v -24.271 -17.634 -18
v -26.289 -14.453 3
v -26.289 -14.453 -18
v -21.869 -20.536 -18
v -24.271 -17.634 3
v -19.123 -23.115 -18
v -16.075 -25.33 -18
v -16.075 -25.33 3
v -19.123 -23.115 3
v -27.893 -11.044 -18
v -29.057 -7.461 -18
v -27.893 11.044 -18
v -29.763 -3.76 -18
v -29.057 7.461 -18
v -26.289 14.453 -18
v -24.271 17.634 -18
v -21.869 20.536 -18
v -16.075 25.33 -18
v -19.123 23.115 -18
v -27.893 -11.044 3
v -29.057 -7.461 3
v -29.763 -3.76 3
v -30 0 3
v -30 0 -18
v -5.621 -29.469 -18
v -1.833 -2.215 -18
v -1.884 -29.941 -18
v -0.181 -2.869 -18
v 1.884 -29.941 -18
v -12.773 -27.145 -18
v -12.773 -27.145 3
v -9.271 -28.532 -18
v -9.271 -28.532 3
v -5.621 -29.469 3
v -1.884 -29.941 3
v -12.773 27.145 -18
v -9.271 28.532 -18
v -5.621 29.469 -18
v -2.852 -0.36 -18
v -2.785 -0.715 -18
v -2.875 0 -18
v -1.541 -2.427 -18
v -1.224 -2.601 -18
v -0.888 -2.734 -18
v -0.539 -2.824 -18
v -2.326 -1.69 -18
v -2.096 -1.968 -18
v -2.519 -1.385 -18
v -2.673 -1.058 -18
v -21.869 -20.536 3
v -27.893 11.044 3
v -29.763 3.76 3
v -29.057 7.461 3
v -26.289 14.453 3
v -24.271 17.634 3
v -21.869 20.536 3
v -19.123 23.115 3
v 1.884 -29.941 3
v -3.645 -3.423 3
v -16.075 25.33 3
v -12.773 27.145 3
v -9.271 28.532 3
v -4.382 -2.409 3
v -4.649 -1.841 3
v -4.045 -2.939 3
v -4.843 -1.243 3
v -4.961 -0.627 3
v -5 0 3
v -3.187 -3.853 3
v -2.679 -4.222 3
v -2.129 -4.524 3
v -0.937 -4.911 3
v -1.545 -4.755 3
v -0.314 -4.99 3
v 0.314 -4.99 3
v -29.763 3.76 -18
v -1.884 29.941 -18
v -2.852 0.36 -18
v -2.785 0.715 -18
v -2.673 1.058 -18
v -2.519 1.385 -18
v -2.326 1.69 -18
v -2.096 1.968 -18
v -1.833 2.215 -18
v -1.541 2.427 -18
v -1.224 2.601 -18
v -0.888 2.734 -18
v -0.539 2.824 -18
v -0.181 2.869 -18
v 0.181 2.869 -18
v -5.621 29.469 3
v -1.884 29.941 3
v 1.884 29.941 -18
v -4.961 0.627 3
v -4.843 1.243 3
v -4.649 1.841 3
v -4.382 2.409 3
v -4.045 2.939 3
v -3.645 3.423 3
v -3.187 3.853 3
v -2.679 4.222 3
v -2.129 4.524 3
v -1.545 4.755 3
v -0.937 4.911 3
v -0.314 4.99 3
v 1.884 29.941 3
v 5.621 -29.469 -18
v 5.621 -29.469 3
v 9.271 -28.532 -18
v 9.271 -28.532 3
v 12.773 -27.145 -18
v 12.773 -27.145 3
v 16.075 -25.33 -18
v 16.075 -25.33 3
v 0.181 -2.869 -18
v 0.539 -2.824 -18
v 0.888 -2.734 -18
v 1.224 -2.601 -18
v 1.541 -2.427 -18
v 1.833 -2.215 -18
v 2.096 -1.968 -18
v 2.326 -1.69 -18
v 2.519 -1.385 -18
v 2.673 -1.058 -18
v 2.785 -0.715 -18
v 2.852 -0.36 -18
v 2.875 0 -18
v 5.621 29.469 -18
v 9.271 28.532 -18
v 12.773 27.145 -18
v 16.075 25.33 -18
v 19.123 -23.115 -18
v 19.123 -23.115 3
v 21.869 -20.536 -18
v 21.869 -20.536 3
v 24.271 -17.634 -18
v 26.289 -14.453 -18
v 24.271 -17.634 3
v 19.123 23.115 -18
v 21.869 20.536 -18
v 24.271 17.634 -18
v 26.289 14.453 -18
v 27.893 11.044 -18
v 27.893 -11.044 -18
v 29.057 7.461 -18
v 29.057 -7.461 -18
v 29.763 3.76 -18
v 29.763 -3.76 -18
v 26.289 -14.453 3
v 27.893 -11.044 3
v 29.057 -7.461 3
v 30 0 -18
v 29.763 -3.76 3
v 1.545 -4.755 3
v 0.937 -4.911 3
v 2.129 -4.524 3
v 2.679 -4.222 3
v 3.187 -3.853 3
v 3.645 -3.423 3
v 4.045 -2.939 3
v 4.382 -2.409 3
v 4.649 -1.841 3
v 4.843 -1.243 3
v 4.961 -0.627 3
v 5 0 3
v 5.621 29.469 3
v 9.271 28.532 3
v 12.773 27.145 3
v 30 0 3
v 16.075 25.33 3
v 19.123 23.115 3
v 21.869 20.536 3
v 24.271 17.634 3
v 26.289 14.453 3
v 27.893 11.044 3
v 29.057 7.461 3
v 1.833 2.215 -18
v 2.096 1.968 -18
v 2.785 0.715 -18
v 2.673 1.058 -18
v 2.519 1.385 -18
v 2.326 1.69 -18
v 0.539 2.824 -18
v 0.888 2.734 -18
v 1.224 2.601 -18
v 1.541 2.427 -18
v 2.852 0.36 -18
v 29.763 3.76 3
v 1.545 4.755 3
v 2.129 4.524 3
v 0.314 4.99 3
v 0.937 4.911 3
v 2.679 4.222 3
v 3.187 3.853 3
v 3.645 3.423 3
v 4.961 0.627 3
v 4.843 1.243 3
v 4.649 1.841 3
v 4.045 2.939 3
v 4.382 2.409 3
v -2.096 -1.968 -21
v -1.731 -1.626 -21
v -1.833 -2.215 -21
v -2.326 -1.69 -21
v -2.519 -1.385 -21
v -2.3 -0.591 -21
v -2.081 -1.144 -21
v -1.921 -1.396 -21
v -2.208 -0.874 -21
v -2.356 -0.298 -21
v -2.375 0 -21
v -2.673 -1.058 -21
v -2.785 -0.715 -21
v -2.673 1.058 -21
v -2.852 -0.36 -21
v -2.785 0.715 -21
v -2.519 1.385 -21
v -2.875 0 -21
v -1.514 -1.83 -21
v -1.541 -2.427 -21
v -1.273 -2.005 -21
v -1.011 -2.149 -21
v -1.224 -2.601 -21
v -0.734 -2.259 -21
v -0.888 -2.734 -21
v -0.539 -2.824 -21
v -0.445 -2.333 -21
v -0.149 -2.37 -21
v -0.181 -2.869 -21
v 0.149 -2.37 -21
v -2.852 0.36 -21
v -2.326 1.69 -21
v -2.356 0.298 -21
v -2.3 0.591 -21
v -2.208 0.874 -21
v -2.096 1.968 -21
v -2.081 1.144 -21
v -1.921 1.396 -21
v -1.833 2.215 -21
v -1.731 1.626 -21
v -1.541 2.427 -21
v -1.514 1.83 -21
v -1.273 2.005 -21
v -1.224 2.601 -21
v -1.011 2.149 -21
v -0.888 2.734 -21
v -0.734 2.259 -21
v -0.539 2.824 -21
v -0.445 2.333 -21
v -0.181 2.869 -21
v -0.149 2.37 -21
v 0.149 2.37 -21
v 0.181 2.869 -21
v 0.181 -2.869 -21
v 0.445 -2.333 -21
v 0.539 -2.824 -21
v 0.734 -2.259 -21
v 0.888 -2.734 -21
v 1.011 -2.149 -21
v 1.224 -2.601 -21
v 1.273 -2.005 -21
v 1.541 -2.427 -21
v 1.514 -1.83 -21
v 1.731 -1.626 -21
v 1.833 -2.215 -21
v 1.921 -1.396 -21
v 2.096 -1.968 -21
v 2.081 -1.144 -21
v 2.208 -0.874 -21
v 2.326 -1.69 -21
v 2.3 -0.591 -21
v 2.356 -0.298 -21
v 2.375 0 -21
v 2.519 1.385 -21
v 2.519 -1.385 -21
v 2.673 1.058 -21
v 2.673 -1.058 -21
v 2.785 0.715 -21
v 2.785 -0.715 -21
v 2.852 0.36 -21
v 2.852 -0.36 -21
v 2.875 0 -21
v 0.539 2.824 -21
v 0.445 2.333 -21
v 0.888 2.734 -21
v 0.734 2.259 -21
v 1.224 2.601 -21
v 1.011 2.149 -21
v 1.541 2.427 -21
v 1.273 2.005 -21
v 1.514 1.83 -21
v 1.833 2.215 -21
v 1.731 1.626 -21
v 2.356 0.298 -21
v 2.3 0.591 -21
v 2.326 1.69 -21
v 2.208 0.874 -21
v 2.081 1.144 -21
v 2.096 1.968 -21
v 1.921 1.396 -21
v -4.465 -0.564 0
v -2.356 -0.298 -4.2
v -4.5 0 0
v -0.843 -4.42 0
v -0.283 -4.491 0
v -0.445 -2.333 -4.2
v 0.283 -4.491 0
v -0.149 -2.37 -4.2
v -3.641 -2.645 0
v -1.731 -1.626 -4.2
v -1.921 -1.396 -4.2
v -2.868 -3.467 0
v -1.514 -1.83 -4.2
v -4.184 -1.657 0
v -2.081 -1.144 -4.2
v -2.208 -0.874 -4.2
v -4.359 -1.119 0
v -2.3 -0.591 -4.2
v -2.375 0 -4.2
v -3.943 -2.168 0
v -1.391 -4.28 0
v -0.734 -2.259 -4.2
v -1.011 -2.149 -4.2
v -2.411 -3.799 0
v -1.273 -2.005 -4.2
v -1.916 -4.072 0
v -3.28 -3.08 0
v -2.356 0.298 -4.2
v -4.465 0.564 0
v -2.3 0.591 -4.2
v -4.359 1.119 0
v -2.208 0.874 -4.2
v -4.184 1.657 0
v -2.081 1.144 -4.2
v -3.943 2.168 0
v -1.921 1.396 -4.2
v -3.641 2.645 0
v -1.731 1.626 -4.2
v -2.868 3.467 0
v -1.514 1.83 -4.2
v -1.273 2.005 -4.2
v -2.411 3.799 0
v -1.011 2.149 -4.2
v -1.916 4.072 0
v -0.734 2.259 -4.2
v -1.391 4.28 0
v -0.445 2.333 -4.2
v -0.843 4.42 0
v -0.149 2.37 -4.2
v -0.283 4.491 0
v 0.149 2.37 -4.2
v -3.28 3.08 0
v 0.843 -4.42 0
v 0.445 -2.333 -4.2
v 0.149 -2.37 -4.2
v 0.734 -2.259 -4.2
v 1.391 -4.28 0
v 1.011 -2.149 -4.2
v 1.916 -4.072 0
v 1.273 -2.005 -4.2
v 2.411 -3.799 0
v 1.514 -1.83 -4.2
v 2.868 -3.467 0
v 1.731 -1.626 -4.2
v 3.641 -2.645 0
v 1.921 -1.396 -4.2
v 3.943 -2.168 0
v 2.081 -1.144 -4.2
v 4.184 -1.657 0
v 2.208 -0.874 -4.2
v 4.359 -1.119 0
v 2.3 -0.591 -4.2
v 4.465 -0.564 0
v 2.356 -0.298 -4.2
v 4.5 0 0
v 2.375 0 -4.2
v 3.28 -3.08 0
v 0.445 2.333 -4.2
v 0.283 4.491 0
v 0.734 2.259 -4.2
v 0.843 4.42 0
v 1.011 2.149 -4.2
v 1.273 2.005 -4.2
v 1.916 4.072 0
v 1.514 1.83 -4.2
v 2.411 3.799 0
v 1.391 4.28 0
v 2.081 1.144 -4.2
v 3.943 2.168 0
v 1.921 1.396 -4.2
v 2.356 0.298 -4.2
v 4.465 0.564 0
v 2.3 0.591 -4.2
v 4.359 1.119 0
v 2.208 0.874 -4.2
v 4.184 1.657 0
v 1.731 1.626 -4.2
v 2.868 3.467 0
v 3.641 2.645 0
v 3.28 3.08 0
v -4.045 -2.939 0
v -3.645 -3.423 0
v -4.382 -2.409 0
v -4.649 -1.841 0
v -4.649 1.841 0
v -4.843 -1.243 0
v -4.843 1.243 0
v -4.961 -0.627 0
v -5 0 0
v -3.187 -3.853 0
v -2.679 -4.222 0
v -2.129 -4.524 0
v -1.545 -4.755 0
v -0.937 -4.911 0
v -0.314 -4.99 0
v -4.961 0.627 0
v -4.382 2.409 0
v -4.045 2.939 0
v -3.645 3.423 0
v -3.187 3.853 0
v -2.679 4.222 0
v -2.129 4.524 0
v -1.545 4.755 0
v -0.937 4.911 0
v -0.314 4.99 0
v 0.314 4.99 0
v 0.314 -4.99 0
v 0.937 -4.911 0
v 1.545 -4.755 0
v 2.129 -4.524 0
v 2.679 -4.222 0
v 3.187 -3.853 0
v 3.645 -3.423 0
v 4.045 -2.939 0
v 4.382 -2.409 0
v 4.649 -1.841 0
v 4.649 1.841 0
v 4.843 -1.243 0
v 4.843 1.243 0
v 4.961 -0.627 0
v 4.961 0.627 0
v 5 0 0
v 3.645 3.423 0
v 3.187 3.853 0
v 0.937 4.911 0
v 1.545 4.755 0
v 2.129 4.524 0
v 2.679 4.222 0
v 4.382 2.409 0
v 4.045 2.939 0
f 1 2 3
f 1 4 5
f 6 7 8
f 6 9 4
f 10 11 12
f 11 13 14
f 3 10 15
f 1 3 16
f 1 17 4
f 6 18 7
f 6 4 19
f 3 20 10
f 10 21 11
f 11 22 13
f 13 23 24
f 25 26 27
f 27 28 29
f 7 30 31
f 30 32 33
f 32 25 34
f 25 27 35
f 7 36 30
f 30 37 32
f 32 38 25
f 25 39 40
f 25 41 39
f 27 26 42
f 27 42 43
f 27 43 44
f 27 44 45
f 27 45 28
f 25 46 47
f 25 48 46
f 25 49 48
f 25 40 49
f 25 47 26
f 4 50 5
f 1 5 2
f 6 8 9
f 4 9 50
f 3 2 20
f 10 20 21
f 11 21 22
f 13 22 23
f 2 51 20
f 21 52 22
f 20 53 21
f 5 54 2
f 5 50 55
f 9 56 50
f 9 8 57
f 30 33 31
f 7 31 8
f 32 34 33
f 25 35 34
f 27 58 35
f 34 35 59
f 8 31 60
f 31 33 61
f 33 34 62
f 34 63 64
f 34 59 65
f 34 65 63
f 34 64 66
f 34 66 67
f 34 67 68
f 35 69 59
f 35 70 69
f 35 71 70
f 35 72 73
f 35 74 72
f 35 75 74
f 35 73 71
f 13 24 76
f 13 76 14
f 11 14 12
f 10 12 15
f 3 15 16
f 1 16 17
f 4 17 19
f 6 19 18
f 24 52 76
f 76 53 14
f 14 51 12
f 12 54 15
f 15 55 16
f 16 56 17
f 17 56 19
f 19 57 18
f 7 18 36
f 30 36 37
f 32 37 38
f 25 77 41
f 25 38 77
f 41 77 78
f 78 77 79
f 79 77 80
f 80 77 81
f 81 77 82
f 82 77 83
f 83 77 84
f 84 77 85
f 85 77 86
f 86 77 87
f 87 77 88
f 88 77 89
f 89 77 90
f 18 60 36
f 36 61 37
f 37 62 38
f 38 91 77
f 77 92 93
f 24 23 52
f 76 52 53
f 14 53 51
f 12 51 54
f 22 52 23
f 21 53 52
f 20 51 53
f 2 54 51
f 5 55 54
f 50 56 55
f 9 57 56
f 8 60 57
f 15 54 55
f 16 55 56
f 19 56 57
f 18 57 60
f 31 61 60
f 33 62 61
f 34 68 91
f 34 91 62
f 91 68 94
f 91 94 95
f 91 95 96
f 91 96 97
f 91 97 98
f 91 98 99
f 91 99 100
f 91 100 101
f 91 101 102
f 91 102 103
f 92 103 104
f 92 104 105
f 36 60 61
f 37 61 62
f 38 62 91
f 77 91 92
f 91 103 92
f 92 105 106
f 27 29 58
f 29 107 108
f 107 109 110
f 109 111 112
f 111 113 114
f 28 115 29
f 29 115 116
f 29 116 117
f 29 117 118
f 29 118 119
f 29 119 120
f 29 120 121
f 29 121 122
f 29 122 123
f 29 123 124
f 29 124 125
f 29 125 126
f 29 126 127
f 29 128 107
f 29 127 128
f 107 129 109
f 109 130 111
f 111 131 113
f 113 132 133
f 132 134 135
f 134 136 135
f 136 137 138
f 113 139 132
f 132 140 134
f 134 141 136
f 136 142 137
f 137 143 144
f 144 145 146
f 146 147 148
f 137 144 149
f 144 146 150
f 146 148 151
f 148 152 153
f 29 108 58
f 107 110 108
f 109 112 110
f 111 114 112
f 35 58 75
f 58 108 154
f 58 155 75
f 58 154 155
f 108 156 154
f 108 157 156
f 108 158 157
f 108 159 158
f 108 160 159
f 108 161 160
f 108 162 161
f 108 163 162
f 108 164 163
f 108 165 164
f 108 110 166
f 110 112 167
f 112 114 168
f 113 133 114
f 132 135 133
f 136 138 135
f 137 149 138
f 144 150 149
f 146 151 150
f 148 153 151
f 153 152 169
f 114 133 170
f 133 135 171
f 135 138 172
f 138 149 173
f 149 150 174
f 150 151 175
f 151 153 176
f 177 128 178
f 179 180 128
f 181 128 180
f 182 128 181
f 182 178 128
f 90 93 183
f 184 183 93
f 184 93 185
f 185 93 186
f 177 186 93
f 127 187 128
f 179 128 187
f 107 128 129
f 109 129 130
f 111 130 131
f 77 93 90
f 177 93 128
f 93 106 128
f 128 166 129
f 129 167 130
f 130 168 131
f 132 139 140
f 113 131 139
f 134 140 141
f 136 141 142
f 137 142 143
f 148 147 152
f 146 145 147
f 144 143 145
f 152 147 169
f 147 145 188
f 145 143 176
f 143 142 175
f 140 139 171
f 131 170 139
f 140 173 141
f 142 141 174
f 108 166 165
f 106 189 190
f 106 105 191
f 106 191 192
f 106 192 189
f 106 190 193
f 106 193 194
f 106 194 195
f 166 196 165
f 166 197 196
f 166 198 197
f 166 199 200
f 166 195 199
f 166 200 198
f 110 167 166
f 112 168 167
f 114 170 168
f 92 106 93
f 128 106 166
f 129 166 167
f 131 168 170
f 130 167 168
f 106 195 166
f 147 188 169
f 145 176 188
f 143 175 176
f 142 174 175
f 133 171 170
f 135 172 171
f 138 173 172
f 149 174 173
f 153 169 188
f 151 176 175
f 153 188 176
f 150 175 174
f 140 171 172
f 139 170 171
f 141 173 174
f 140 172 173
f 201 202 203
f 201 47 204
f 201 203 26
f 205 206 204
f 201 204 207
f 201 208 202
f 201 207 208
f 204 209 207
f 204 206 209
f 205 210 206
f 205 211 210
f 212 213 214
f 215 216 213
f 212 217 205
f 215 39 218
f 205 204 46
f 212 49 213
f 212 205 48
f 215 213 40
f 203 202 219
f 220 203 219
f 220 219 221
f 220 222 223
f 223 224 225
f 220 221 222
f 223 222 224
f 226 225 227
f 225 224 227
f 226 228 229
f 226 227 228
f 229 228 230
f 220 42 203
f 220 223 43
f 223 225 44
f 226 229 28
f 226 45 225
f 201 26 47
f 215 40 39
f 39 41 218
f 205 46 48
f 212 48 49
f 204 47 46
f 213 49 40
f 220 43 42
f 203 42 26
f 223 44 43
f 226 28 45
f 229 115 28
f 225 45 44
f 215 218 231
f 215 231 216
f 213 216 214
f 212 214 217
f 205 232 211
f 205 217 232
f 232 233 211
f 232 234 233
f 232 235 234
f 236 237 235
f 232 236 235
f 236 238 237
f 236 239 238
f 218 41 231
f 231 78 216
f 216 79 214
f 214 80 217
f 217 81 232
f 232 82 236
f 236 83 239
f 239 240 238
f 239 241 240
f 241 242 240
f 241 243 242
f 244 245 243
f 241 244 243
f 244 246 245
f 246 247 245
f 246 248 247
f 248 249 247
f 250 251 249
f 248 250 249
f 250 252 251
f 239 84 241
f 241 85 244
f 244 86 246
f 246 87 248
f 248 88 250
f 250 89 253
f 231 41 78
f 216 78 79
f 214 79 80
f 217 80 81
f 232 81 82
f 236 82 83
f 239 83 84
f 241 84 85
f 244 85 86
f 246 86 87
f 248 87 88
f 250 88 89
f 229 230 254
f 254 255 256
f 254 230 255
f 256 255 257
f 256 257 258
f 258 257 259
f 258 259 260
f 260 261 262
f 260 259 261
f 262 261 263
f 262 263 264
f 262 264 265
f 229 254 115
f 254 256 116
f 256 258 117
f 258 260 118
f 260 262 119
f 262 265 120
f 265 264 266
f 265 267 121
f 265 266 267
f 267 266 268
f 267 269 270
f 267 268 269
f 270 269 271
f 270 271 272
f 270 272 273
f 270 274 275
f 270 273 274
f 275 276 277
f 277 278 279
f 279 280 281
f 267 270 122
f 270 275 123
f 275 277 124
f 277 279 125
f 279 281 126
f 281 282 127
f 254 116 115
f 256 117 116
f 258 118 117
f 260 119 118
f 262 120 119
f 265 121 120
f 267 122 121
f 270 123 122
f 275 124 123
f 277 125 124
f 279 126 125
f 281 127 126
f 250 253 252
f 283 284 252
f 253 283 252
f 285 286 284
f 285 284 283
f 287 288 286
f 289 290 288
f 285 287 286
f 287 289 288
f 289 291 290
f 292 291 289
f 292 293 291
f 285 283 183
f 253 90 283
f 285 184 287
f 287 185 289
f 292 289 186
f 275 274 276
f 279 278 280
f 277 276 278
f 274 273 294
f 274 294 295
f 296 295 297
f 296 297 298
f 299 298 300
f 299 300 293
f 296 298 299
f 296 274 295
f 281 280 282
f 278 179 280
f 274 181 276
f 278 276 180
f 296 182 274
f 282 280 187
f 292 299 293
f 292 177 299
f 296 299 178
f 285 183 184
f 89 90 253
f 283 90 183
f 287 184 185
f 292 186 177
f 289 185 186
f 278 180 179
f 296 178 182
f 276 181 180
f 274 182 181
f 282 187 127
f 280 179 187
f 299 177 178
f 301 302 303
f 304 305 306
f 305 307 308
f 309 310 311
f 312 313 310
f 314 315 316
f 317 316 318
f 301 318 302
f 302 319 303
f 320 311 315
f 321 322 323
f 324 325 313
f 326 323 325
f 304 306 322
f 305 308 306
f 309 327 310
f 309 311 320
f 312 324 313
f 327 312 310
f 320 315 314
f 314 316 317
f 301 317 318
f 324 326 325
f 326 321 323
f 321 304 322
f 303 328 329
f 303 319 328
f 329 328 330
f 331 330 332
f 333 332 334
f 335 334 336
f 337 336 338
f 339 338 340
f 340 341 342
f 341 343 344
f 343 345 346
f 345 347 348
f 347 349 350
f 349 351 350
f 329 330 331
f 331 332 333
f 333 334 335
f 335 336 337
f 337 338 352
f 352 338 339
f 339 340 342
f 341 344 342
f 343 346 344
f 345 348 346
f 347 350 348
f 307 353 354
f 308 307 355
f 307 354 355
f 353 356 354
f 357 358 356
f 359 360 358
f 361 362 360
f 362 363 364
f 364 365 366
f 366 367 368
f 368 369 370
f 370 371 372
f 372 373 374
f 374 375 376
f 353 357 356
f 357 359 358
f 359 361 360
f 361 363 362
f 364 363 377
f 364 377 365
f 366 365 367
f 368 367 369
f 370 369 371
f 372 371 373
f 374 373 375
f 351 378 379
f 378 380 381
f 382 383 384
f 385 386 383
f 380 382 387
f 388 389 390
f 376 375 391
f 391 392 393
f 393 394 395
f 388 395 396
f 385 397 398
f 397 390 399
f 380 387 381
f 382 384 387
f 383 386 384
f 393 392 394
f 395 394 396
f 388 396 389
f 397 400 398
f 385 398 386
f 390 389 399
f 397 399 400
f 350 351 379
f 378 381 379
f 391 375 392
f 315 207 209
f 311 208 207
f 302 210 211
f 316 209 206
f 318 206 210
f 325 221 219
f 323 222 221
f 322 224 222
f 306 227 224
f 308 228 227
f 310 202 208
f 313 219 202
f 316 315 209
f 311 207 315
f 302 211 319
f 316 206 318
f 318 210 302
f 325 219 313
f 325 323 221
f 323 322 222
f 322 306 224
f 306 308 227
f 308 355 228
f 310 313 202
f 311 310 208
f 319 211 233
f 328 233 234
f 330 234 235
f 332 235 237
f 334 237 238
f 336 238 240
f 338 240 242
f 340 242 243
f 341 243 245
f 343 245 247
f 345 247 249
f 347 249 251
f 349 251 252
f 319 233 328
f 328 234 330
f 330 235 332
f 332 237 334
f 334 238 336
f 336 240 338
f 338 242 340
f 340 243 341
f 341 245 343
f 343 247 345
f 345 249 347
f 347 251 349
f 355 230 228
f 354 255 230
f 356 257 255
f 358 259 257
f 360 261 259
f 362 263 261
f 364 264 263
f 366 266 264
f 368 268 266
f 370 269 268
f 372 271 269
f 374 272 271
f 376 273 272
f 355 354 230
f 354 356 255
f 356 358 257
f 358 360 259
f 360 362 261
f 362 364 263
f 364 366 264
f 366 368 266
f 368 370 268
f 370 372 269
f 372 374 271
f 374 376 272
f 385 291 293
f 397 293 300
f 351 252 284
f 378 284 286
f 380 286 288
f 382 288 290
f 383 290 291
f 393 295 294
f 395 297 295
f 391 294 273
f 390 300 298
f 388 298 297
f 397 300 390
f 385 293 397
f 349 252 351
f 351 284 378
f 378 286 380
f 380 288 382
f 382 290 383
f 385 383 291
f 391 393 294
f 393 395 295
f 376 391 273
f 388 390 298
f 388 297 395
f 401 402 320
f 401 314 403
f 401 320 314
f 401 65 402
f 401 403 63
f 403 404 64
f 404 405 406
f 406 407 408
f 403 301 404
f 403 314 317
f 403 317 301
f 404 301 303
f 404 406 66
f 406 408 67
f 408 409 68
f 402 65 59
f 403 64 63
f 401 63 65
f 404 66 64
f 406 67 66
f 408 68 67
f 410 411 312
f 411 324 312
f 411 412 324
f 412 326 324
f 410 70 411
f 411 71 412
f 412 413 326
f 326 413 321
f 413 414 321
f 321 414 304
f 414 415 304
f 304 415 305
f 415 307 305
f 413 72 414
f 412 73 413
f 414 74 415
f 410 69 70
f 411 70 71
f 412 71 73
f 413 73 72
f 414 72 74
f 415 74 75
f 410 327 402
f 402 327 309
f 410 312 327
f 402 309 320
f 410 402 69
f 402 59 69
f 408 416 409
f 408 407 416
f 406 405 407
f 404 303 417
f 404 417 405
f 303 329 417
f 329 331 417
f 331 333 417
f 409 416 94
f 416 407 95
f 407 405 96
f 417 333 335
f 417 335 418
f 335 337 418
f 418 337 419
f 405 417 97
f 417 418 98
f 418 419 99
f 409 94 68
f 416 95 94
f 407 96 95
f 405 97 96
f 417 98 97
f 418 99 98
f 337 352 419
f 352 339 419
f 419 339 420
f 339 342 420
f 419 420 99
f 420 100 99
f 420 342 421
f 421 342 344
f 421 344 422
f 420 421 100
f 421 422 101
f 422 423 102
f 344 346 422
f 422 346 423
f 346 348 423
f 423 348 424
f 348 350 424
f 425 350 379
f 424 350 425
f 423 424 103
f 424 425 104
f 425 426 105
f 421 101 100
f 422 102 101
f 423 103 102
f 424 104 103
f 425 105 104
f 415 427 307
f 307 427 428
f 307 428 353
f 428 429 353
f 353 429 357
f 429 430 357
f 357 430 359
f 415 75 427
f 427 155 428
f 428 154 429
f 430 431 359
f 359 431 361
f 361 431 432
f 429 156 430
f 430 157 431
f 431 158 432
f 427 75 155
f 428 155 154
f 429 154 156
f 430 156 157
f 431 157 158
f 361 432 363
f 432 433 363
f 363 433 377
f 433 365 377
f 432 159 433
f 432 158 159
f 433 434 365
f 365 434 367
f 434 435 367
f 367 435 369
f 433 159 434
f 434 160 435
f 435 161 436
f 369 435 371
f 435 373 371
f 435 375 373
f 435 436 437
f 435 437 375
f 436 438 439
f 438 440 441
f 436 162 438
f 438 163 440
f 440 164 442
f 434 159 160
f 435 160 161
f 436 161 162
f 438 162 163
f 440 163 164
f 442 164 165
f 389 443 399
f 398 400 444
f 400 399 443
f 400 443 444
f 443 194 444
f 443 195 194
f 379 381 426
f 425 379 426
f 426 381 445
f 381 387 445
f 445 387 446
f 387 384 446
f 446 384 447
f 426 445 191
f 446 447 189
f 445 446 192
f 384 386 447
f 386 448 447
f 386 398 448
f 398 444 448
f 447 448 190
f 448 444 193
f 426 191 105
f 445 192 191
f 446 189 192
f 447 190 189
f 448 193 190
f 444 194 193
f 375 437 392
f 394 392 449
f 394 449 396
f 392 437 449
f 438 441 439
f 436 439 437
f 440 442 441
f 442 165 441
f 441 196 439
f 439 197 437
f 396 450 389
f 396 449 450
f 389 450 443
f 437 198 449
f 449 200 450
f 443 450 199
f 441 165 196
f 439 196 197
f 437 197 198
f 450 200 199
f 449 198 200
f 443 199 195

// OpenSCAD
$fn = 50;

difference() {
	union() {
		translate(v = [0, 0, -18.0]) {
			cylinder(h = 21, r = 30.0);
		}
		#translate(v = [0, 0, -21.0]) {
			cylinder(h = 21, r = 2.875);
		}
	}
	union() {
		translate(v = [0, 0, 0]) {
			rotate(a = [0, 0, 0]) {
				difference() {
					union() {
						translate(v = [0, 0, -21.0]) {
							cylinder(h = 21, r = 2.25);
						}
						translate(v = [0, 0, -4.2]) {
							cylinder(h = 4.2, r1 = 2.375, r2 = 4.5);
						}
						translate(v = [0, 0, -21.0]) {
							cylinder(h = 21, r = 2.375);
						}
						translate(v = [0, 0, -21.0]) {
							cylinder(h = 21, r = 2.25);
						}
					}
					union();
				}
			}
		}
		#cylinder(h = 3, r = 5.0);
	}
}
